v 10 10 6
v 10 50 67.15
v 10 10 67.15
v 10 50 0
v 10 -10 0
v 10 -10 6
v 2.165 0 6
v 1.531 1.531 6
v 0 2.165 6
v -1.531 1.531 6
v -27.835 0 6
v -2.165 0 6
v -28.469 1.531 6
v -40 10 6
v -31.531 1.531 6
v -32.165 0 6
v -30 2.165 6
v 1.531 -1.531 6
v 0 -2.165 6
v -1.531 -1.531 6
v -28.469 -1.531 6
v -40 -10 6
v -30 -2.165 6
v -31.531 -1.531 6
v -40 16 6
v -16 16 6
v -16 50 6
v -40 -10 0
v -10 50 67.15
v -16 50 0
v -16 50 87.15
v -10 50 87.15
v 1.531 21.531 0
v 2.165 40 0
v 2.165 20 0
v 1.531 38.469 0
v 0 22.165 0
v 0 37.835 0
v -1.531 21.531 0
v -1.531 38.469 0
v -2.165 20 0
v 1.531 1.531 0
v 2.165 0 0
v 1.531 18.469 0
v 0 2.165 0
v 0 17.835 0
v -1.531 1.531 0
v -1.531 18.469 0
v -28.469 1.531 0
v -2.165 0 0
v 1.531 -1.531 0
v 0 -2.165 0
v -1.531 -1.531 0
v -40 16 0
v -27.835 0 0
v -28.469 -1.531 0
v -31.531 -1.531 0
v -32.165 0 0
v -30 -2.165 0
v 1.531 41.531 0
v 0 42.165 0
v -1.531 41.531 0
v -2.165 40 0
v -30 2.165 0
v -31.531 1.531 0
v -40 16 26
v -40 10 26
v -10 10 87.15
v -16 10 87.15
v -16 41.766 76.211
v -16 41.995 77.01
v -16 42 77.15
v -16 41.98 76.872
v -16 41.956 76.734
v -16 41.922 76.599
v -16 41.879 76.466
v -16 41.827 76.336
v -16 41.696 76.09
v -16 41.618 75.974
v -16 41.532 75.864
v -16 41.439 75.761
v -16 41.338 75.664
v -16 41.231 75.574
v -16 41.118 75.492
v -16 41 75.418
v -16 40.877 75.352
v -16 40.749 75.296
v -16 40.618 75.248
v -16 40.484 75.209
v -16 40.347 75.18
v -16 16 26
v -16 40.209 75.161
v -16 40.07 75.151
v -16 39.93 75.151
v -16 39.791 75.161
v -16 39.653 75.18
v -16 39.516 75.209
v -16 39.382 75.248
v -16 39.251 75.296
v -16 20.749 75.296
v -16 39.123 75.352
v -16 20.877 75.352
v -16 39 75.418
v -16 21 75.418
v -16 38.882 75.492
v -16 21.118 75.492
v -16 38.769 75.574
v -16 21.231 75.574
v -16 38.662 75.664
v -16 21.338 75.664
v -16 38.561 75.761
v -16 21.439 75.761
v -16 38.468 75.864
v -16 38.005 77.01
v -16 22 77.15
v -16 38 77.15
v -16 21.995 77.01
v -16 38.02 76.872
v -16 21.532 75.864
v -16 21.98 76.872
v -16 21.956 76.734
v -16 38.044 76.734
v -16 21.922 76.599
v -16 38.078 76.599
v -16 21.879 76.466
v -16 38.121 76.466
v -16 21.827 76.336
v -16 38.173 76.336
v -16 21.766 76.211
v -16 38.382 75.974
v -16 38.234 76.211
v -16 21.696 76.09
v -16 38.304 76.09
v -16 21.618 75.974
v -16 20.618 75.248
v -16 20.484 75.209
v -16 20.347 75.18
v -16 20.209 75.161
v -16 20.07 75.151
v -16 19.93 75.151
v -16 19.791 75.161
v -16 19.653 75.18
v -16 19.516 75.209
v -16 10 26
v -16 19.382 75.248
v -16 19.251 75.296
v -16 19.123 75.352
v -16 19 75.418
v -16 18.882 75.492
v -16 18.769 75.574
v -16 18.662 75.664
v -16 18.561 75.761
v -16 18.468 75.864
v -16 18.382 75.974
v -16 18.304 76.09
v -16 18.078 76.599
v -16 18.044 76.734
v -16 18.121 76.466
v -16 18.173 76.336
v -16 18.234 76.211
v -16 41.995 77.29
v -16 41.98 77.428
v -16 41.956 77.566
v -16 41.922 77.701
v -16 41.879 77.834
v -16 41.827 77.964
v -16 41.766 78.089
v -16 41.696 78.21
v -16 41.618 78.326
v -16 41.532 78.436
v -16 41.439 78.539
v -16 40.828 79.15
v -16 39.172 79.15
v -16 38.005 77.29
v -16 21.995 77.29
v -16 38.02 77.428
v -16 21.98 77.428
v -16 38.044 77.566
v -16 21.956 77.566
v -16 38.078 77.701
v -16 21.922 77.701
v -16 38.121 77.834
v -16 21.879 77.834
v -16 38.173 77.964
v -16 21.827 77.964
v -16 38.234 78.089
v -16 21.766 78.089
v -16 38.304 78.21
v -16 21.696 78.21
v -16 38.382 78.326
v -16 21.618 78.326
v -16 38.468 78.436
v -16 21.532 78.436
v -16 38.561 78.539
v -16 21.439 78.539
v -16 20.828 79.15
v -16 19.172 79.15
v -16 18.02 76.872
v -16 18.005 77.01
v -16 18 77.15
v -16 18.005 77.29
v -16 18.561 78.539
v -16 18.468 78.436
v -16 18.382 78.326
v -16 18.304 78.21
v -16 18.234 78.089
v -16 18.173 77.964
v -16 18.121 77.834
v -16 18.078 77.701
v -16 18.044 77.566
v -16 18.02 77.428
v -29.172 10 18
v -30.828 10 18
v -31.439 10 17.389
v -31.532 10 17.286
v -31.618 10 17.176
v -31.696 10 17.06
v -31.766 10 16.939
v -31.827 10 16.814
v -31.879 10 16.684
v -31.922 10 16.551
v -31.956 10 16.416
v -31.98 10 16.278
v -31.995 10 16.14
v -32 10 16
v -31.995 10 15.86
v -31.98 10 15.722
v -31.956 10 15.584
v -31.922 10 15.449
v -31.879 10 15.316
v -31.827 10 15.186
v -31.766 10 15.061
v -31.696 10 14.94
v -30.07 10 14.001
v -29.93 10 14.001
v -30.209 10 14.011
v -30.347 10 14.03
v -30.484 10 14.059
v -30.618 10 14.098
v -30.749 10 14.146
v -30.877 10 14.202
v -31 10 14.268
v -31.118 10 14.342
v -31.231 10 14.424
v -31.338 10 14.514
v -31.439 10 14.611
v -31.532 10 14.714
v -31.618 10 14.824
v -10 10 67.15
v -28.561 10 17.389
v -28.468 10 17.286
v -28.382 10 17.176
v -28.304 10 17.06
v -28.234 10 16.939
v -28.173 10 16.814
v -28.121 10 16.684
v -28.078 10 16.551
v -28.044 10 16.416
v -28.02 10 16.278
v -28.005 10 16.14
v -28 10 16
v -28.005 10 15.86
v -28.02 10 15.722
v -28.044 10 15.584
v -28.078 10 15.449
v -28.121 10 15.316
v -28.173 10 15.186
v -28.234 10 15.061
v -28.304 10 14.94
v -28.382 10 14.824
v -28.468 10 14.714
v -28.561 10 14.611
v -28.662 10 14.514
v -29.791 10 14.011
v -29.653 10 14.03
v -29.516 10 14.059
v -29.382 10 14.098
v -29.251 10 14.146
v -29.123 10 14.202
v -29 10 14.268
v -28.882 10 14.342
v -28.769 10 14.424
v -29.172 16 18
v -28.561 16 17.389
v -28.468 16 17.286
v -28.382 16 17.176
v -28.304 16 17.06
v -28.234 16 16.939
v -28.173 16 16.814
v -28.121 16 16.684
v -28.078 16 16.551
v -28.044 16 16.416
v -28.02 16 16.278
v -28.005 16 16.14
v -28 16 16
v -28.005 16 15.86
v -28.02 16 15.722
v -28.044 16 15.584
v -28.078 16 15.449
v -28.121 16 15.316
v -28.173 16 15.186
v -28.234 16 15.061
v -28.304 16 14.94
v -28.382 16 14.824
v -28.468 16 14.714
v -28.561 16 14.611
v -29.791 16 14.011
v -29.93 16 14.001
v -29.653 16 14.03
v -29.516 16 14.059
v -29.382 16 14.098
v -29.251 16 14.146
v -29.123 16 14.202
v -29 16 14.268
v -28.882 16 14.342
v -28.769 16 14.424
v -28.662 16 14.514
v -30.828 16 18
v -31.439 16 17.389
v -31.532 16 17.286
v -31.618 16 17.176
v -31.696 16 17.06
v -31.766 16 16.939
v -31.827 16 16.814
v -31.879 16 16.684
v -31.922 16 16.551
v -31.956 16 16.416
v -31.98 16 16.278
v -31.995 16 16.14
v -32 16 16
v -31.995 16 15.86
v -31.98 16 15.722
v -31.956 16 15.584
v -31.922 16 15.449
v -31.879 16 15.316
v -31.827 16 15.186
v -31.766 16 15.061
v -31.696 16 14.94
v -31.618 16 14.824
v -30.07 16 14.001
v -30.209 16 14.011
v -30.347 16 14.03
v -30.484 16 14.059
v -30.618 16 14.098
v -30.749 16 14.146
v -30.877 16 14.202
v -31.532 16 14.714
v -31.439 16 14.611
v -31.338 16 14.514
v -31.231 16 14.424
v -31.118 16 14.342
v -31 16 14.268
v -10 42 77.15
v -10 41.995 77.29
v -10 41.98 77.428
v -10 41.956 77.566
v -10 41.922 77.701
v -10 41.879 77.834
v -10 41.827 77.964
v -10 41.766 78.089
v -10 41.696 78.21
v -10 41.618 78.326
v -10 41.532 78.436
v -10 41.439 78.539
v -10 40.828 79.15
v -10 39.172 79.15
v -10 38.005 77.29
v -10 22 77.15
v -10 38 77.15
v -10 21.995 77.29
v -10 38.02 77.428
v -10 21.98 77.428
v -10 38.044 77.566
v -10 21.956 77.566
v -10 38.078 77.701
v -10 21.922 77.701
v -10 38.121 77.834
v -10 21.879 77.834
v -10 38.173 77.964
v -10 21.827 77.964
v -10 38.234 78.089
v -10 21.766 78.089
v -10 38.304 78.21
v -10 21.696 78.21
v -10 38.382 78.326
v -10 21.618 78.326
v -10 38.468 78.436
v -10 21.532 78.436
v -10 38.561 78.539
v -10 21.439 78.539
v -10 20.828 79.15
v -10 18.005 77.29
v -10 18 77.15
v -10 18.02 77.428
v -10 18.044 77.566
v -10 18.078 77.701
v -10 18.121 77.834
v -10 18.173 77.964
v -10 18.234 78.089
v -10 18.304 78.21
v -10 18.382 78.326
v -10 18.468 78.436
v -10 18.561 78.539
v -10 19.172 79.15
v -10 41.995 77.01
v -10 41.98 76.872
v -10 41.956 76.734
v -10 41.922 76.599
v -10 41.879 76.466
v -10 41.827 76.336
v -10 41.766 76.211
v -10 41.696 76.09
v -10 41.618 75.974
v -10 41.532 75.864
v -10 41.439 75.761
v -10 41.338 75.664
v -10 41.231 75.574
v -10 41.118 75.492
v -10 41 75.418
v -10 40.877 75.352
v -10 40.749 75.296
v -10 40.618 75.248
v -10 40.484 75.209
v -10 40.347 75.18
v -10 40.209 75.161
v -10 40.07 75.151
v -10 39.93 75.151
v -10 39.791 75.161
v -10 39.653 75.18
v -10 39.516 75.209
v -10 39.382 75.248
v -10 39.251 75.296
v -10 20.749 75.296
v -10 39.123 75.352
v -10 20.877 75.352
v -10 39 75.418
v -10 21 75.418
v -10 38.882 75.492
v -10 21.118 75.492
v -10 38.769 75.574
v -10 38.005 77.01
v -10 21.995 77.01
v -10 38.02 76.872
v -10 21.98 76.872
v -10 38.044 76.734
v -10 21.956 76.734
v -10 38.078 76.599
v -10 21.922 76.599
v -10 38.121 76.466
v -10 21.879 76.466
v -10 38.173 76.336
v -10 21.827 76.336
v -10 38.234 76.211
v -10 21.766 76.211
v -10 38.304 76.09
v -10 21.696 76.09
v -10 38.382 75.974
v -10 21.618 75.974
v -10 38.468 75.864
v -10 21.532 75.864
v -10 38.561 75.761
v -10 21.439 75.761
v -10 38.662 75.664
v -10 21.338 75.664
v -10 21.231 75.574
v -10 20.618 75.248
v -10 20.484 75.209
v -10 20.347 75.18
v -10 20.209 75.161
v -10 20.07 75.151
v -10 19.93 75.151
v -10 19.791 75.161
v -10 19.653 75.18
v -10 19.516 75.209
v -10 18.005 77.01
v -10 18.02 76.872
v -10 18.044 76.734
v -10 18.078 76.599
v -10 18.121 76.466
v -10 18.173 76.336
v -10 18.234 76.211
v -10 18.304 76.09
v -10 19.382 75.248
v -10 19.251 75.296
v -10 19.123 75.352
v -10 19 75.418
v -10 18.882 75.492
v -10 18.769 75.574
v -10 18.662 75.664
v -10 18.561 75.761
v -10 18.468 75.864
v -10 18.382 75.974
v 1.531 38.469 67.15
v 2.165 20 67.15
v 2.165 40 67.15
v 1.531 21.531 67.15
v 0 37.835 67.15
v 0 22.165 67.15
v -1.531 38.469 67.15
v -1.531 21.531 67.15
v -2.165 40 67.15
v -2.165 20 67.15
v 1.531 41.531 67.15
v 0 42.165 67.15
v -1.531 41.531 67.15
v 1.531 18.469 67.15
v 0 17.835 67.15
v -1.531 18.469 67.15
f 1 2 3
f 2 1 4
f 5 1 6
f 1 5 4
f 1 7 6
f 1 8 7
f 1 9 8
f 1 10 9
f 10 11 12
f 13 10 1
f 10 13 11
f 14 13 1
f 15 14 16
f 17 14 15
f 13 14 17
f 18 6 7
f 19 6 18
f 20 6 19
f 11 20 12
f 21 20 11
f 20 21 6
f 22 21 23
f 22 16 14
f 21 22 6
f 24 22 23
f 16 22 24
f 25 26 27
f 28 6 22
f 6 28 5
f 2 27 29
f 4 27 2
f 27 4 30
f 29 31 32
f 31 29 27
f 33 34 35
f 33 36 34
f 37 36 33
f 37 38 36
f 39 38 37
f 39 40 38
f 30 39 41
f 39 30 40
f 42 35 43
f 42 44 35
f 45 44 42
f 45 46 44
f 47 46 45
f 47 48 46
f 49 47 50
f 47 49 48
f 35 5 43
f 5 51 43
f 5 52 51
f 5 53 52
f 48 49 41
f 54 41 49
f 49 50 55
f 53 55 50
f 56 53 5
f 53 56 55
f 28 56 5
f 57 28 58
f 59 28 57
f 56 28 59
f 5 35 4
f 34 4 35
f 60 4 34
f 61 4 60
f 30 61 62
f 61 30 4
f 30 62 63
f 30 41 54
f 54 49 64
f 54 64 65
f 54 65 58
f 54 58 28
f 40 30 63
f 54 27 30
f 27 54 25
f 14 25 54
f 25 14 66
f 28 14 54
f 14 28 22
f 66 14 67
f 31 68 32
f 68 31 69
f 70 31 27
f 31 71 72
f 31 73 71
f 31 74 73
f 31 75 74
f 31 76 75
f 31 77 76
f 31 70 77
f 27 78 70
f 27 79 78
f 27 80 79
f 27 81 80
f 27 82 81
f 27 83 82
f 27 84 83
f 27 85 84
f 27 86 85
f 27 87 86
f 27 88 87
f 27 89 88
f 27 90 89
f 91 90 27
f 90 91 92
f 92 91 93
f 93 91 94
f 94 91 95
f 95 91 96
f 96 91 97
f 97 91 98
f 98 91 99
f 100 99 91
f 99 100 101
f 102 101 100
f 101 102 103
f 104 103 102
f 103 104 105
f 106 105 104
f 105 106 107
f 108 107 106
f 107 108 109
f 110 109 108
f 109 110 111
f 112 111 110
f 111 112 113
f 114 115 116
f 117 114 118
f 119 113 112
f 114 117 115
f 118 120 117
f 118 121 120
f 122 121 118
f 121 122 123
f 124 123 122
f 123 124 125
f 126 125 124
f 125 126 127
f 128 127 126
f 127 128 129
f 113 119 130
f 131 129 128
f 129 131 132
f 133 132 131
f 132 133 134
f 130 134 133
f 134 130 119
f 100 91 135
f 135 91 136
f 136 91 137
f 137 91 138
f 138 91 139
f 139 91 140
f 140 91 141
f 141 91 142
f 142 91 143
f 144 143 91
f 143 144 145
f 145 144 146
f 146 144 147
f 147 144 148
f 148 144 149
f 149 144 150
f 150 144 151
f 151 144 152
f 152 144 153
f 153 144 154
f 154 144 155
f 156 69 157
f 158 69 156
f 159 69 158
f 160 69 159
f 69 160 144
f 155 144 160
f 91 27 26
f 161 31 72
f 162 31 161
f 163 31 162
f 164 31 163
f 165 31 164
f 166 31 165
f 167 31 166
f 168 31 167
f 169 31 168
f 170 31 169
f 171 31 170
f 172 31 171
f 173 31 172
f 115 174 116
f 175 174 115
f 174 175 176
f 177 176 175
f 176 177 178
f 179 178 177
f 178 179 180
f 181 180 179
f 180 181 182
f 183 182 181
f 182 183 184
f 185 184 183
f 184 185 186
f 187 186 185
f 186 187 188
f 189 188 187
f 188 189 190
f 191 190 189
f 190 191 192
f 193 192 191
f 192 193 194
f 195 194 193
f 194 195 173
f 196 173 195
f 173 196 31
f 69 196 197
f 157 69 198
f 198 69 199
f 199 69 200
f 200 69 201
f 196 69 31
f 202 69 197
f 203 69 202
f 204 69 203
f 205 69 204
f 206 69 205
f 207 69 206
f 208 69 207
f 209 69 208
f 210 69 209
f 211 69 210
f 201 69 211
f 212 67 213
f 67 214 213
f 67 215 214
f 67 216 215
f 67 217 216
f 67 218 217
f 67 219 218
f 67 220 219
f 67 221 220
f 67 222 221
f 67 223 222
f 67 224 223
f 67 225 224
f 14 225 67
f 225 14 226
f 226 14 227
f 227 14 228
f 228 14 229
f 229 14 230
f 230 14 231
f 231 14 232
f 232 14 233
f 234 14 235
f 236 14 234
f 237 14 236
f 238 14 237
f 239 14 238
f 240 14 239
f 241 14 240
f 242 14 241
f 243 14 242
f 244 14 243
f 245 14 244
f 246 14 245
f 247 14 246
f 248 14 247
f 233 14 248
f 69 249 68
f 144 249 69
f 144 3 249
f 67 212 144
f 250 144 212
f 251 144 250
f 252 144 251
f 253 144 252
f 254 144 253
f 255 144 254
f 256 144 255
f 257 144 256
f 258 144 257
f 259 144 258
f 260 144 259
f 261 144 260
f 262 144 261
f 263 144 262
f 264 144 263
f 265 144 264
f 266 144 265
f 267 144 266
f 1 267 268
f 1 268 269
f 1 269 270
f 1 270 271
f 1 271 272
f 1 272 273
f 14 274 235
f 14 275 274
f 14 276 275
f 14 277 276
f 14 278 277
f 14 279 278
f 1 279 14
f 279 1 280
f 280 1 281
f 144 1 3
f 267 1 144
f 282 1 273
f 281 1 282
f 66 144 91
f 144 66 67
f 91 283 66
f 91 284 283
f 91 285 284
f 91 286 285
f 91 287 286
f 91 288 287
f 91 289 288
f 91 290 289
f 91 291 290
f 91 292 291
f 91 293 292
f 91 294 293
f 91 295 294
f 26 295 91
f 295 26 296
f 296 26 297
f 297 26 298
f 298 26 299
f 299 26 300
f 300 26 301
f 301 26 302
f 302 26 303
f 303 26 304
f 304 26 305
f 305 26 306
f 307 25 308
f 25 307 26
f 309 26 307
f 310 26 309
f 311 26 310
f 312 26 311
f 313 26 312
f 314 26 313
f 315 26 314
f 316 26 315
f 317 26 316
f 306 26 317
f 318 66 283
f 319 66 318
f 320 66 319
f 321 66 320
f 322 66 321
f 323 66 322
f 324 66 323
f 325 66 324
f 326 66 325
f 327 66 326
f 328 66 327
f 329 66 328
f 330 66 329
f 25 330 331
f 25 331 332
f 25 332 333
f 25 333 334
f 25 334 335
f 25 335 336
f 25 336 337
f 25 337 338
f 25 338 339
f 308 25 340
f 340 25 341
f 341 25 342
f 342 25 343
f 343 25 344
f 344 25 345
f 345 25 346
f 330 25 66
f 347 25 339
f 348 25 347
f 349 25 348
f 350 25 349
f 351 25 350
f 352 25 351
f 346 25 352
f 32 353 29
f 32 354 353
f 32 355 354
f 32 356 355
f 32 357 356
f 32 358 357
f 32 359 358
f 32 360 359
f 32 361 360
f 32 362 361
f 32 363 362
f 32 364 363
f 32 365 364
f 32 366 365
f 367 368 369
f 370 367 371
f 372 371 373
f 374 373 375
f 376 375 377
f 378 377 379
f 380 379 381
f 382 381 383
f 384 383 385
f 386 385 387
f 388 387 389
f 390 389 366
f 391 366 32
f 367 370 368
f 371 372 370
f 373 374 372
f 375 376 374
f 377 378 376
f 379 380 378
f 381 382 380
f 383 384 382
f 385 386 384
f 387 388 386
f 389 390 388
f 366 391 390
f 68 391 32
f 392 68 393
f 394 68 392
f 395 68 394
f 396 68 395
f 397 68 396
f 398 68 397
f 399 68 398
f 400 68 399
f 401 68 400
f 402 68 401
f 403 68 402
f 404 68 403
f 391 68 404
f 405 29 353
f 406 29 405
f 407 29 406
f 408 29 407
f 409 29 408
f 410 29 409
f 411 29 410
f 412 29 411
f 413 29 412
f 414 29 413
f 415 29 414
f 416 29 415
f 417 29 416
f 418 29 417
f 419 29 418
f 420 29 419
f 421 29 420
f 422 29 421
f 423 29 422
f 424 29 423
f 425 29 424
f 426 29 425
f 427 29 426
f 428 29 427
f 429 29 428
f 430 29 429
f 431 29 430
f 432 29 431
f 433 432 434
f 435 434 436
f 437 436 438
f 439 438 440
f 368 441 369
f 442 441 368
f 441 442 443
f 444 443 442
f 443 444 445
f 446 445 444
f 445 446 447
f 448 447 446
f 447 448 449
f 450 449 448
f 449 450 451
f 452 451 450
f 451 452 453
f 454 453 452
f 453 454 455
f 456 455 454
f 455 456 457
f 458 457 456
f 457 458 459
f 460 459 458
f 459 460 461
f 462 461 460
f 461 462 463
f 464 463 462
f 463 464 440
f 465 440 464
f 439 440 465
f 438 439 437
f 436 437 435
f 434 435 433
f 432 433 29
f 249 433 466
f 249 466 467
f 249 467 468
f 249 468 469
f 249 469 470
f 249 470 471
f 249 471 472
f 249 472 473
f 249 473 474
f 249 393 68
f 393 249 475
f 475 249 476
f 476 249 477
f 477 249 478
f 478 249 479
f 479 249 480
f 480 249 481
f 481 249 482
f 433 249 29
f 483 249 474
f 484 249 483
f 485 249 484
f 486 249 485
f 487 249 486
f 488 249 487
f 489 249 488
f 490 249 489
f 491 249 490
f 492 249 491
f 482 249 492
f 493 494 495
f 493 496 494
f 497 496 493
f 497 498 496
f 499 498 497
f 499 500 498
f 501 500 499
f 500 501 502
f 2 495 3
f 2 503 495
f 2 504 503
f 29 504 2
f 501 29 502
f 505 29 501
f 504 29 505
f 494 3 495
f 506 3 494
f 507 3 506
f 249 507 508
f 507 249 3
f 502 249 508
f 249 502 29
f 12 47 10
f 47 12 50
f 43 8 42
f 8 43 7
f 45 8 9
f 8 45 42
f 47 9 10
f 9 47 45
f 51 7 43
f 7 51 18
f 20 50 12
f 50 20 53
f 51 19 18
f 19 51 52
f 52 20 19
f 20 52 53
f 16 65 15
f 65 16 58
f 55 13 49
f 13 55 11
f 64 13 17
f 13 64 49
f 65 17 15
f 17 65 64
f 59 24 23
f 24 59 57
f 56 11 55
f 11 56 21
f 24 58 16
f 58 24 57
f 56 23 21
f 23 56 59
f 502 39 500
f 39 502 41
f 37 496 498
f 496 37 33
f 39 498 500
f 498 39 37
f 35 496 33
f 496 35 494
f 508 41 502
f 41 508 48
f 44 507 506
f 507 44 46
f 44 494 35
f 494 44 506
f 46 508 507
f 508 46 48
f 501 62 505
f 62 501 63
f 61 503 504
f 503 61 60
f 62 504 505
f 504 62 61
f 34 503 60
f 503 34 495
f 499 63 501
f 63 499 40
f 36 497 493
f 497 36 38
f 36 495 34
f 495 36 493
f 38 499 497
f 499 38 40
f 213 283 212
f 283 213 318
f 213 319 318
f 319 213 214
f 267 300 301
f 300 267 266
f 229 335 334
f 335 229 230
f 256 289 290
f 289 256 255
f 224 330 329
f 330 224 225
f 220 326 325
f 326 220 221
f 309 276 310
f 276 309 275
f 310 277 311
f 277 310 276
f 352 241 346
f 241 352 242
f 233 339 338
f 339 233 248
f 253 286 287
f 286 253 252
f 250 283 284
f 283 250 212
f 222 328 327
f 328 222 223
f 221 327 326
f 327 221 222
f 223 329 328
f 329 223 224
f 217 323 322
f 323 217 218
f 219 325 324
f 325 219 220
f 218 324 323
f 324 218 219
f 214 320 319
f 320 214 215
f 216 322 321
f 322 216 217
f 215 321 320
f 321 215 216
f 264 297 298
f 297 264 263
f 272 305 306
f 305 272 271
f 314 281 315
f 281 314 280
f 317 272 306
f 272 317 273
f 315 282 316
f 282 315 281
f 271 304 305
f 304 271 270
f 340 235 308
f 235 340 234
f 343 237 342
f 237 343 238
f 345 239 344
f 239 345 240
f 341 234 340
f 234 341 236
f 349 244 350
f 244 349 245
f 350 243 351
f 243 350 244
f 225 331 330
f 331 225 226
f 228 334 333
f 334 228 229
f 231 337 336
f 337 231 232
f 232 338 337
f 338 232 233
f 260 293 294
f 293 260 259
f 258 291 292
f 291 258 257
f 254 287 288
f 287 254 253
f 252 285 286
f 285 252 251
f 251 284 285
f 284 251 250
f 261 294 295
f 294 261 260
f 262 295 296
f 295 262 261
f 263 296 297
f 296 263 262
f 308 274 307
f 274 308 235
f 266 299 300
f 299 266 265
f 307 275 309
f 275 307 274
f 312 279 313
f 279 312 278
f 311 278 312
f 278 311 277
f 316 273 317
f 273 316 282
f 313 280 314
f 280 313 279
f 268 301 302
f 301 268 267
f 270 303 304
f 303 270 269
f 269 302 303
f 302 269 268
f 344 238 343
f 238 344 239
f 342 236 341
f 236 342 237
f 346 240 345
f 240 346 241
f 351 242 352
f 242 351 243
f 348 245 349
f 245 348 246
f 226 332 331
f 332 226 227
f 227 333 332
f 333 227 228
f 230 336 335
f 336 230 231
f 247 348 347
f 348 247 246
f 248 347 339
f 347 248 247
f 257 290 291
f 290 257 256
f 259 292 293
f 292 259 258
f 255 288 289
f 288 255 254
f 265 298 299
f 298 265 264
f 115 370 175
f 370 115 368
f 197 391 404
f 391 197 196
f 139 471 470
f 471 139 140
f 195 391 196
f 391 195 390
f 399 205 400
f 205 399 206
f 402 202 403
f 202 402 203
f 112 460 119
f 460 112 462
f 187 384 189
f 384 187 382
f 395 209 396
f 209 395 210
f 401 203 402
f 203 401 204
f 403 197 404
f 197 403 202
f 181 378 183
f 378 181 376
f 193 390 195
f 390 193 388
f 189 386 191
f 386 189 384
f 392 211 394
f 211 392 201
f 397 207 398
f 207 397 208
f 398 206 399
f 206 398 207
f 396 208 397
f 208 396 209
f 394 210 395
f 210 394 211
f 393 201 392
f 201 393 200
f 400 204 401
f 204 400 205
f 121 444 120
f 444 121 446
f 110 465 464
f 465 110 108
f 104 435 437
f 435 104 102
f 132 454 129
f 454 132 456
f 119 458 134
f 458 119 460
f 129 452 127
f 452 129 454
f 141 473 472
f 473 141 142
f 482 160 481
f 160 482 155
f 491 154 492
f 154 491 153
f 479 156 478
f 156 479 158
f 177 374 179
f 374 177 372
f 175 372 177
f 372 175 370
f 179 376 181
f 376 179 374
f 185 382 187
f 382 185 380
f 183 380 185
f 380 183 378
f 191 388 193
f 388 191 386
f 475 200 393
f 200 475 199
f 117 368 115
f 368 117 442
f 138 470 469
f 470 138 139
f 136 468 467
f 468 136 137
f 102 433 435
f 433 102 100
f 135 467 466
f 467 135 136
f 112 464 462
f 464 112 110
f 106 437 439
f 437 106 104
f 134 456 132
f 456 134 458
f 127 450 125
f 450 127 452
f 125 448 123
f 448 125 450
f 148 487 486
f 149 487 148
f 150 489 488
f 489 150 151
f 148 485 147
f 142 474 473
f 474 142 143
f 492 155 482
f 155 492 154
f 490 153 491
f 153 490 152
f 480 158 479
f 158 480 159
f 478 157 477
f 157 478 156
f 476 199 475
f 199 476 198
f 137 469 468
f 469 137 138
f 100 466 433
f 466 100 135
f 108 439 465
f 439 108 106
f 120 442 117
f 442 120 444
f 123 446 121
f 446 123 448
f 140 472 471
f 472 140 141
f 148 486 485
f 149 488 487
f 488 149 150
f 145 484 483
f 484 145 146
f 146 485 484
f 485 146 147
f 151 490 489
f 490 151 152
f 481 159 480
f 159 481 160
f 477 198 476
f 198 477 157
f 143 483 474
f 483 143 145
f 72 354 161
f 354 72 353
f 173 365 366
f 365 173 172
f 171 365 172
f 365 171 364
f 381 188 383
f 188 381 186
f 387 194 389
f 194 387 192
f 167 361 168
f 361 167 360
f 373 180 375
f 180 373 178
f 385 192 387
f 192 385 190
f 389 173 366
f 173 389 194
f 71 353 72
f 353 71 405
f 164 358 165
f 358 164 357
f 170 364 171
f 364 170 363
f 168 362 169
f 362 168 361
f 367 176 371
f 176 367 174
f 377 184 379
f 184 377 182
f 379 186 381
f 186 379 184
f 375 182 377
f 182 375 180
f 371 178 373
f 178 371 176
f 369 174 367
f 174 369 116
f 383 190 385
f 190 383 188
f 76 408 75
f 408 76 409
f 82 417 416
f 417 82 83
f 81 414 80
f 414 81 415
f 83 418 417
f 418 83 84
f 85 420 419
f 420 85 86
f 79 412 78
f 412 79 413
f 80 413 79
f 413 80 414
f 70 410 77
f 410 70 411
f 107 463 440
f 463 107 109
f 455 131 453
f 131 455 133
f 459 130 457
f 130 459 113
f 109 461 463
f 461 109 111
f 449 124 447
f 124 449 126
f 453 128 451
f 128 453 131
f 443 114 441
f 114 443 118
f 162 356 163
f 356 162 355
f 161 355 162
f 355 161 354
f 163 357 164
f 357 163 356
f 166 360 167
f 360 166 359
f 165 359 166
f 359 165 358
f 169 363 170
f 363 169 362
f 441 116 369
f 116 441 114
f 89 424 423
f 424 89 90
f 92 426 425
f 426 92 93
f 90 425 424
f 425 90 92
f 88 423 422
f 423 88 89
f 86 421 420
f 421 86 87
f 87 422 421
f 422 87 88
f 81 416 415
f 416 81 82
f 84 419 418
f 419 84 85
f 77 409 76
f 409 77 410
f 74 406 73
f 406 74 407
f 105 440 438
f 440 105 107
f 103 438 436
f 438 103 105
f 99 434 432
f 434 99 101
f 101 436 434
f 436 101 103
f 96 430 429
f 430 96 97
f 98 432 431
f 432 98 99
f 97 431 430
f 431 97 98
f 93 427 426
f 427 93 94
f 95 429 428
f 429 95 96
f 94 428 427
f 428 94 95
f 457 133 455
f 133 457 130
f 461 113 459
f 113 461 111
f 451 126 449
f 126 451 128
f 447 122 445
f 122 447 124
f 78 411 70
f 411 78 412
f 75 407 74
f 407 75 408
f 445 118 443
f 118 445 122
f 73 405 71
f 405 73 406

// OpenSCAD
// file: trunctear.scad
//A module for truncated tear drops.

trunctear(1, 0.5, $fn = 90);

module trunctear(hei, radian, cent = false)
{
    linear_extrude(height = hei, center = cent)
        hull()
        {
            circle(r = radian);
            translate([0, radian/2])
                square([2*(radian*(2*cos(45)-1)), radian], center = true);
        }
}
// file: polyhole.scad
// The Cylinder is dead! Long live the Cylinder!
// A module for a polyhole by radius, based on Nophead's work.

module polyhole(h, r, cent = false)
{
    n = max(round(4 * r), 3);
    cylinder(h = h, r = r / cos(180 / n), $fn = n, center = cent);
}
// file: LowerBrace.scad
// Bottom Brace

use<polyhole.scad>
use<trunctear.scad>

LowerBrace();

module LowerBrace()
{
    dist = 46+42.3/2+20;
    
    difference()
    {
        union()
        {
            hull()
            {
                translate([3, 20, 3])
                    cube([20+6, 60, 6], center = true);
                translate([15, 3, 3])
                    cube([50, 20+6, 6], center = true);
            }
            translate([3, 30, dist/2])
                cube([20+6, 40, dist], center = true);
            translate([15, 13, 13])
                cube([50, 6, 26], center = true);
        }
        translate([0, 30, dist-10])
            cube([20, 40, 20], center = true);
        polyhole(dist, 2);
        translate([30, 0, 0])
            polyhole(dist, 2);
        translate([0, 20, 0])
            polyhole(dist, 2);
        translate([0, 40, 0])
            polyhole(dist, 2);
        translate([30, 10, 16])
            rotate([90, 0, 180])
                trunctear(6, 2, $fn = 90);
        translate([10, 20, dist-10])
            rotate([90, 0, 90])
                trunctear(6, 2, $fn = 90);
        translate([10, 40, dist-10])
            rotate([90, 0, 90])
                trunctear(6, 2, $fn = 90);
    }
}
// main file
// Lower Brace mirror

use<LowerBrace.scad>

LowerBraceMirror();

module LowerBraceMirror()
{
    scale([-1, 1, 1])
        LowerBrace();
}
